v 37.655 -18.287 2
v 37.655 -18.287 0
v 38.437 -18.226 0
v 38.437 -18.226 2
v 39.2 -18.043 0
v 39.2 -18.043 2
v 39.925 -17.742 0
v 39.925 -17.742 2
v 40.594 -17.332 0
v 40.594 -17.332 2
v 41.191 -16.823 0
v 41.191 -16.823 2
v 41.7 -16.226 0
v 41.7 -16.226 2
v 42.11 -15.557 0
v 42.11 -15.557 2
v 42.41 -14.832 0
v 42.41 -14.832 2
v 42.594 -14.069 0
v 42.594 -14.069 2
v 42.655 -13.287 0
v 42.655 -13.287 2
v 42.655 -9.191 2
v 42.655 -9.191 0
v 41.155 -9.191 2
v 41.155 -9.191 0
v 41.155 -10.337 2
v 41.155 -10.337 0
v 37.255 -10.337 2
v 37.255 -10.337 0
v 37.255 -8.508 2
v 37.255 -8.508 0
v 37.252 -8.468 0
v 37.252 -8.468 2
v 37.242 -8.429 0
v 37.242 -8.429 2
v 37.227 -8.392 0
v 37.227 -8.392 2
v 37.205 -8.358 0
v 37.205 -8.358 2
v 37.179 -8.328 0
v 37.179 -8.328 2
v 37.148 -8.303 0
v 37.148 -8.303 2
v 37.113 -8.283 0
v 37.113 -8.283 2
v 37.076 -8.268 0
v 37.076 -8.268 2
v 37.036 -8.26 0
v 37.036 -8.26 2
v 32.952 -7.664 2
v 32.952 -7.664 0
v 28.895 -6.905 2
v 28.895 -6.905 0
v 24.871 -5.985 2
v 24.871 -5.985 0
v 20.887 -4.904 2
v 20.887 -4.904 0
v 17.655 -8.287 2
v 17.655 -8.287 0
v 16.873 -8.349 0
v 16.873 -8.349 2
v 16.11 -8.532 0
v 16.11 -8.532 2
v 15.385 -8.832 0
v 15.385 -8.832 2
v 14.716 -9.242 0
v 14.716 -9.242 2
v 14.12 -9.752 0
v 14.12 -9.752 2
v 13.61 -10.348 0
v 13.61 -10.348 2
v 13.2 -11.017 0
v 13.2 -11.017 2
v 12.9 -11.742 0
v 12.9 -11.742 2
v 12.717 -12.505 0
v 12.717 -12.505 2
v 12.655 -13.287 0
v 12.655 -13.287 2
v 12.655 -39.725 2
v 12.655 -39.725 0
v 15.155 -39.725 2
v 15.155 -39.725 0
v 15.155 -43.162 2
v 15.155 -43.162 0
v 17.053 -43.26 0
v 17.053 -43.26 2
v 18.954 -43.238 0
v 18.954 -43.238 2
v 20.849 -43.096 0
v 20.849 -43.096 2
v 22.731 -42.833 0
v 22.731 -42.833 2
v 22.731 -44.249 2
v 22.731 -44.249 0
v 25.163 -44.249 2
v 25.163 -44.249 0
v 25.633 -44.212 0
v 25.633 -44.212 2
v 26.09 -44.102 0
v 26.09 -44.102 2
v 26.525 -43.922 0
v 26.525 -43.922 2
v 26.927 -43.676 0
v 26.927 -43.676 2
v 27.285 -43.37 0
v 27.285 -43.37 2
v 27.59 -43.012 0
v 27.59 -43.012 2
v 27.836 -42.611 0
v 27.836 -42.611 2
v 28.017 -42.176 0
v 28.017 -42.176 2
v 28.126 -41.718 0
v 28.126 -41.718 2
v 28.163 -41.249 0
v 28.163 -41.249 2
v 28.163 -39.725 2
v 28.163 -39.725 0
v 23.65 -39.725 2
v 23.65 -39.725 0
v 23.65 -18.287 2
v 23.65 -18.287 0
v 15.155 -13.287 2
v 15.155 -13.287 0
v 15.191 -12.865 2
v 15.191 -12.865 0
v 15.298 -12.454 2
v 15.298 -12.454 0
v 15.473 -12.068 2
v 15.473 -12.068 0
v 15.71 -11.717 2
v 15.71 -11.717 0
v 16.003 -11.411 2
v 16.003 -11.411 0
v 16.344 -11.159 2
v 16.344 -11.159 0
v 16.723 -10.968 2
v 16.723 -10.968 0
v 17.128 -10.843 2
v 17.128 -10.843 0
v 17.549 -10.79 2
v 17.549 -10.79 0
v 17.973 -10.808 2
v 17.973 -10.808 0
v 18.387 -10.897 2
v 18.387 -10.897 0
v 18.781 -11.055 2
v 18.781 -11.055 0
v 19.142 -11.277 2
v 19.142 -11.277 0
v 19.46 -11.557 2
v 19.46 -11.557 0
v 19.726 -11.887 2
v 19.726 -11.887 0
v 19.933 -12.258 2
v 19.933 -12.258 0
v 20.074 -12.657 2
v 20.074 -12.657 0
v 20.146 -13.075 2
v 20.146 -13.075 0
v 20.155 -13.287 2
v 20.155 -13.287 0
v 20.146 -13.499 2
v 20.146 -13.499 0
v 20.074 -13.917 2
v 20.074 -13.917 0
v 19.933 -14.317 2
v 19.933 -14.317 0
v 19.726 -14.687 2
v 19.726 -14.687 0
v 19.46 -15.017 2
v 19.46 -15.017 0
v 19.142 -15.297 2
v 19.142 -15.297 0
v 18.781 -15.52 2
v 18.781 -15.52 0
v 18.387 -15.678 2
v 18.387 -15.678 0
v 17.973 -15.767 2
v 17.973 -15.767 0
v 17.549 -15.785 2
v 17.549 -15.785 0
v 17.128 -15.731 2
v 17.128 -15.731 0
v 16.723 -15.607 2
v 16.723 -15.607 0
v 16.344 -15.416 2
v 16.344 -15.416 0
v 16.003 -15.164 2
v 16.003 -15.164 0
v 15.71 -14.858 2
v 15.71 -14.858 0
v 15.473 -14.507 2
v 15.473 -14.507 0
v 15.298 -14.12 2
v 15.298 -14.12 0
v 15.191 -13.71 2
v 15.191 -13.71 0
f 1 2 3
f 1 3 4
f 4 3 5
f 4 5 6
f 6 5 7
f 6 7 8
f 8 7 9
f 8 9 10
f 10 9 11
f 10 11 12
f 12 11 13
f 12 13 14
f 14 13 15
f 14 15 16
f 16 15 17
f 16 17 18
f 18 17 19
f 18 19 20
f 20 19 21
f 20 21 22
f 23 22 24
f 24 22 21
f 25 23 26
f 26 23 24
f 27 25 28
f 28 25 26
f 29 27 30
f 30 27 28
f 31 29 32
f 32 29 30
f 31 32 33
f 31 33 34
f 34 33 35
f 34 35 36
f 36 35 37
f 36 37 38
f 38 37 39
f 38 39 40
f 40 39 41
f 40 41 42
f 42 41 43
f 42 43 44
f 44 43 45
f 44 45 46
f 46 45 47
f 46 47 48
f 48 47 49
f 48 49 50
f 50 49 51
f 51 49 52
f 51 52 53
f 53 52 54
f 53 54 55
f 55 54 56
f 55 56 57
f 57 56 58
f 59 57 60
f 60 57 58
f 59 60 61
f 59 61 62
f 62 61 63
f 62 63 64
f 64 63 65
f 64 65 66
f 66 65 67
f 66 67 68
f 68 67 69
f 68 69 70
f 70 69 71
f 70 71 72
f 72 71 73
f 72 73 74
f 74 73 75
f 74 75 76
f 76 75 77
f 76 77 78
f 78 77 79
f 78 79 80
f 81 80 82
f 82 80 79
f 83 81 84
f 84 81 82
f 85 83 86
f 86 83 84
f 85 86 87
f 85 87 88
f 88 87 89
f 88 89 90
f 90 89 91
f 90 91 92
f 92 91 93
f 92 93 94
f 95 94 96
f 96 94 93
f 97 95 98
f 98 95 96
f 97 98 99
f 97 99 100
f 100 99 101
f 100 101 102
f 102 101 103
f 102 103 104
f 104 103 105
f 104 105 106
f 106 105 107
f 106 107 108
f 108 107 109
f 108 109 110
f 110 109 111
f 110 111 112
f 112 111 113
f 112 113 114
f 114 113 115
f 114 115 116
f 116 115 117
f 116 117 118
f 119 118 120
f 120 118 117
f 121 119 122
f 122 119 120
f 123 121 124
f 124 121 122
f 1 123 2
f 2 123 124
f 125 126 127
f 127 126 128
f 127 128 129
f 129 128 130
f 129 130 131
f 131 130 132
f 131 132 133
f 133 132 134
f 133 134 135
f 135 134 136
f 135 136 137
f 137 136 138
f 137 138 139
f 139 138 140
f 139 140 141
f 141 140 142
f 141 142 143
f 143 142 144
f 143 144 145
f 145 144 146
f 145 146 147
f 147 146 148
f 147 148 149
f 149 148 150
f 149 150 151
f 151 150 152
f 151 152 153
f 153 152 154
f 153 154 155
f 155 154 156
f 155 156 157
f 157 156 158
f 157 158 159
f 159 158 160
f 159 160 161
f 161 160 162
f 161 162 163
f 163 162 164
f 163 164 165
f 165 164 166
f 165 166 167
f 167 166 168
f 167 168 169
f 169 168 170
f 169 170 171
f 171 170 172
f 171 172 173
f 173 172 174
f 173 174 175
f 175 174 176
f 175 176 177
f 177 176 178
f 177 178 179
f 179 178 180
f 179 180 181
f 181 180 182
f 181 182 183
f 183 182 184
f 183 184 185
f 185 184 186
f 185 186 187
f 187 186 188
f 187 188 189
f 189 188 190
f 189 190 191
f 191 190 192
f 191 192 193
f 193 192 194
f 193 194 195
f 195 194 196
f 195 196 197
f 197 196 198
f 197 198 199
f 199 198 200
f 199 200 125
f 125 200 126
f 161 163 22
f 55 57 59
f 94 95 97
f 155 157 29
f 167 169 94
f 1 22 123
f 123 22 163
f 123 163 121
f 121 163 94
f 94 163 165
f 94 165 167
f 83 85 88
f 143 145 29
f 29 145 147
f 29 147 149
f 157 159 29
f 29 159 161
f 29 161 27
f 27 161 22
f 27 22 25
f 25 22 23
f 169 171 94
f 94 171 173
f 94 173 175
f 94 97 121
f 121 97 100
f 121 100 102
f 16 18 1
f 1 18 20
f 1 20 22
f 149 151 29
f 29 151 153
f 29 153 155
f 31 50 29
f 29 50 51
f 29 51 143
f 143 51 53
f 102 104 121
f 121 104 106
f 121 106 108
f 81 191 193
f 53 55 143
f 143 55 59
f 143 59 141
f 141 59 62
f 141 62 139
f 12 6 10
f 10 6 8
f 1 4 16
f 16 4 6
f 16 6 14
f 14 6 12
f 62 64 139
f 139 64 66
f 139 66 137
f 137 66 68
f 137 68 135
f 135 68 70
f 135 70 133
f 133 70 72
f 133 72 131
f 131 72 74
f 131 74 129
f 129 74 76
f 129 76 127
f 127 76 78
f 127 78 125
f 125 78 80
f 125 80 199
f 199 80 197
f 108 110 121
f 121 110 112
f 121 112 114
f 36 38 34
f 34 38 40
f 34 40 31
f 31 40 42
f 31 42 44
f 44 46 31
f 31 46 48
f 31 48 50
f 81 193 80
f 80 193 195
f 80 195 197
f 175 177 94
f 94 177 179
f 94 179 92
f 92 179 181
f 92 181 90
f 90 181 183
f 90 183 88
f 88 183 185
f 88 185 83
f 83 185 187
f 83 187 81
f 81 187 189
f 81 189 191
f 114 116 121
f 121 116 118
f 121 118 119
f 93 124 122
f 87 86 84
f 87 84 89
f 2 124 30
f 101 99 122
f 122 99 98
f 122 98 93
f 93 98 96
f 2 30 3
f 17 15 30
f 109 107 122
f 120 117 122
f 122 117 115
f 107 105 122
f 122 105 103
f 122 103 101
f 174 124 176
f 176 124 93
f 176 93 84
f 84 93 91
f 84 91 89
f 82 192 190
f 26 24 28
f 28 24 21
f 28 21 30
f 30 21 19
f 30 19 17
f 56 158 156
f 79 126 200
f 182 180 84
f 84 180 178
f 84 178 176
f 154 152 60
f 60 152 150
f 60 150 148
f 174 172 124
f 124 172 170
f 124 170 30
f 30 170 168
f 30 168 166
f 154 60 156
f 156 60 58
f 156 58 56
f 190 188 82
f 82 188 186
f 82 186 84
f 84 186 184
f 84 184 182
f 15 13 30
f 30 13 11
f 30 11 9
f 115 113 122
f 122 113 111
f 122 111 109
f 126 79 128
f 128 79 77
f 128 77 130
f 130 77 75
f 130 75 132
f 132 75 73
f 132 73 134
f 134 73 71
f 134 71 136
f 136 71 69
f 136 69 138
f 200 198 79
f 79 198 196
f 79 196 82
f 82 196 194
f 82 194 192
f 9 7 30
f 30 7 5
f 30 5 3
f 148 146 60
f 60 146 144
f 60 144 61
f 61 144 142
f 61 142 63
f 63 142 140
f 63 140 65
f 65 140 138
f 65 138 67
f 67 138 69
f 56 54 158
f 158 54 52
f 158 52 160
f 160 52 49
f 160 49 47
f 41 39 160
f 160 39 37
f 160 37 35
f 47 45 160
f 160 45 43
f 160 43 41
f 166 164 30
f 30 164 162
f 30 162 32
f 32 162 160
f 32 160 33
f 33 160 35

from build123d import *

# Parameters (mm, degrees)
SKETCH_1_R      = 2.5
EXTRUDE_1_DEPTH = 2


with BuildPart() as part:
    # 스케치1 → 보스-돌출1 (new body)
    with BuildSketch(Plane.XY):
        with BuildLine():
            Line((20.887065526, -4.904042543), (17.65515334, -8.287321674))
            ThreePointArc((17.65515334, -8.287321674), (14.119619434, -9.751787768), (12.65515334, -13.287321674))
            Line((12.65515334, -13.287321674), (12.65515334, -39.724999499))
            Line((12.65515334, -39.724999499), (15.15515334, -39.724999499))
            Line((15.15515334, -39.724999499), (15.15515334, -43.161796007))
            ThreePointArc((15.15515334, -43.161796007), (18.953651475, -43.238083254), (22.731294666, -42.833336733))
            Line((22.731294666, -42.833336733), (22.731294666, -44.249079054))
            Line((22.731294666, -44.249079054), (25.163405743, -44.249079054))
            ThreePointArc((25.163405743, -44.249079054), (27.284726086, -43.370399397), (28.163405743, -41.249079054))
            Line((28.163405743, -41.249079054), (28.163405743, -39.724999499))
            Line((28.163405743, -39.724999499), (25.906714003, -39.724999499))
            Line((25.906714003, -39.724999499), (23.650022264, -39.724999499))
            Line((23.650022264, -39.724999499), (23.650022264, -18.287321674))
            Line((23.650022264, -18.287321674), (37.65515334, -18.287321674))
            ThreePointArc((37.65515334, -18.287321674), (41.190687246, -16.82285558), (42.65515334, -13.287321674))
            Line((42.65515334, -13.287321674), (42.65515334, -9.191405084))
            Line((42.65515334, -9.191405084), (41.15515334, -9.191405084))
            Line((41.15515334, -9.191405084), (41.15515334, -10.336593208))
            Line((41.15515334, -10.336593208), (37.25515334, -10.336593208))
            Line((37.25515334, -10.336593208), (37.25515334, -8.508126005))
            ThreePointArc((37.25515334, -8.508126005), (37.192620725, -8.342729573), (37.036305504, -8.260074513))
            ThreePointArc((37.036305504, -8.260074513), (28.894559444, -6.905069462), (20.887065526, -4.904042543))
        make_face()
        with Locations((17.65515334, -13.287321674)):
            Circle(SKETCH_1_R, mode=Mode.SUBTRACT)
    extrude(amount=EXTRUDE_1_DEPTH)


solid = part.part
